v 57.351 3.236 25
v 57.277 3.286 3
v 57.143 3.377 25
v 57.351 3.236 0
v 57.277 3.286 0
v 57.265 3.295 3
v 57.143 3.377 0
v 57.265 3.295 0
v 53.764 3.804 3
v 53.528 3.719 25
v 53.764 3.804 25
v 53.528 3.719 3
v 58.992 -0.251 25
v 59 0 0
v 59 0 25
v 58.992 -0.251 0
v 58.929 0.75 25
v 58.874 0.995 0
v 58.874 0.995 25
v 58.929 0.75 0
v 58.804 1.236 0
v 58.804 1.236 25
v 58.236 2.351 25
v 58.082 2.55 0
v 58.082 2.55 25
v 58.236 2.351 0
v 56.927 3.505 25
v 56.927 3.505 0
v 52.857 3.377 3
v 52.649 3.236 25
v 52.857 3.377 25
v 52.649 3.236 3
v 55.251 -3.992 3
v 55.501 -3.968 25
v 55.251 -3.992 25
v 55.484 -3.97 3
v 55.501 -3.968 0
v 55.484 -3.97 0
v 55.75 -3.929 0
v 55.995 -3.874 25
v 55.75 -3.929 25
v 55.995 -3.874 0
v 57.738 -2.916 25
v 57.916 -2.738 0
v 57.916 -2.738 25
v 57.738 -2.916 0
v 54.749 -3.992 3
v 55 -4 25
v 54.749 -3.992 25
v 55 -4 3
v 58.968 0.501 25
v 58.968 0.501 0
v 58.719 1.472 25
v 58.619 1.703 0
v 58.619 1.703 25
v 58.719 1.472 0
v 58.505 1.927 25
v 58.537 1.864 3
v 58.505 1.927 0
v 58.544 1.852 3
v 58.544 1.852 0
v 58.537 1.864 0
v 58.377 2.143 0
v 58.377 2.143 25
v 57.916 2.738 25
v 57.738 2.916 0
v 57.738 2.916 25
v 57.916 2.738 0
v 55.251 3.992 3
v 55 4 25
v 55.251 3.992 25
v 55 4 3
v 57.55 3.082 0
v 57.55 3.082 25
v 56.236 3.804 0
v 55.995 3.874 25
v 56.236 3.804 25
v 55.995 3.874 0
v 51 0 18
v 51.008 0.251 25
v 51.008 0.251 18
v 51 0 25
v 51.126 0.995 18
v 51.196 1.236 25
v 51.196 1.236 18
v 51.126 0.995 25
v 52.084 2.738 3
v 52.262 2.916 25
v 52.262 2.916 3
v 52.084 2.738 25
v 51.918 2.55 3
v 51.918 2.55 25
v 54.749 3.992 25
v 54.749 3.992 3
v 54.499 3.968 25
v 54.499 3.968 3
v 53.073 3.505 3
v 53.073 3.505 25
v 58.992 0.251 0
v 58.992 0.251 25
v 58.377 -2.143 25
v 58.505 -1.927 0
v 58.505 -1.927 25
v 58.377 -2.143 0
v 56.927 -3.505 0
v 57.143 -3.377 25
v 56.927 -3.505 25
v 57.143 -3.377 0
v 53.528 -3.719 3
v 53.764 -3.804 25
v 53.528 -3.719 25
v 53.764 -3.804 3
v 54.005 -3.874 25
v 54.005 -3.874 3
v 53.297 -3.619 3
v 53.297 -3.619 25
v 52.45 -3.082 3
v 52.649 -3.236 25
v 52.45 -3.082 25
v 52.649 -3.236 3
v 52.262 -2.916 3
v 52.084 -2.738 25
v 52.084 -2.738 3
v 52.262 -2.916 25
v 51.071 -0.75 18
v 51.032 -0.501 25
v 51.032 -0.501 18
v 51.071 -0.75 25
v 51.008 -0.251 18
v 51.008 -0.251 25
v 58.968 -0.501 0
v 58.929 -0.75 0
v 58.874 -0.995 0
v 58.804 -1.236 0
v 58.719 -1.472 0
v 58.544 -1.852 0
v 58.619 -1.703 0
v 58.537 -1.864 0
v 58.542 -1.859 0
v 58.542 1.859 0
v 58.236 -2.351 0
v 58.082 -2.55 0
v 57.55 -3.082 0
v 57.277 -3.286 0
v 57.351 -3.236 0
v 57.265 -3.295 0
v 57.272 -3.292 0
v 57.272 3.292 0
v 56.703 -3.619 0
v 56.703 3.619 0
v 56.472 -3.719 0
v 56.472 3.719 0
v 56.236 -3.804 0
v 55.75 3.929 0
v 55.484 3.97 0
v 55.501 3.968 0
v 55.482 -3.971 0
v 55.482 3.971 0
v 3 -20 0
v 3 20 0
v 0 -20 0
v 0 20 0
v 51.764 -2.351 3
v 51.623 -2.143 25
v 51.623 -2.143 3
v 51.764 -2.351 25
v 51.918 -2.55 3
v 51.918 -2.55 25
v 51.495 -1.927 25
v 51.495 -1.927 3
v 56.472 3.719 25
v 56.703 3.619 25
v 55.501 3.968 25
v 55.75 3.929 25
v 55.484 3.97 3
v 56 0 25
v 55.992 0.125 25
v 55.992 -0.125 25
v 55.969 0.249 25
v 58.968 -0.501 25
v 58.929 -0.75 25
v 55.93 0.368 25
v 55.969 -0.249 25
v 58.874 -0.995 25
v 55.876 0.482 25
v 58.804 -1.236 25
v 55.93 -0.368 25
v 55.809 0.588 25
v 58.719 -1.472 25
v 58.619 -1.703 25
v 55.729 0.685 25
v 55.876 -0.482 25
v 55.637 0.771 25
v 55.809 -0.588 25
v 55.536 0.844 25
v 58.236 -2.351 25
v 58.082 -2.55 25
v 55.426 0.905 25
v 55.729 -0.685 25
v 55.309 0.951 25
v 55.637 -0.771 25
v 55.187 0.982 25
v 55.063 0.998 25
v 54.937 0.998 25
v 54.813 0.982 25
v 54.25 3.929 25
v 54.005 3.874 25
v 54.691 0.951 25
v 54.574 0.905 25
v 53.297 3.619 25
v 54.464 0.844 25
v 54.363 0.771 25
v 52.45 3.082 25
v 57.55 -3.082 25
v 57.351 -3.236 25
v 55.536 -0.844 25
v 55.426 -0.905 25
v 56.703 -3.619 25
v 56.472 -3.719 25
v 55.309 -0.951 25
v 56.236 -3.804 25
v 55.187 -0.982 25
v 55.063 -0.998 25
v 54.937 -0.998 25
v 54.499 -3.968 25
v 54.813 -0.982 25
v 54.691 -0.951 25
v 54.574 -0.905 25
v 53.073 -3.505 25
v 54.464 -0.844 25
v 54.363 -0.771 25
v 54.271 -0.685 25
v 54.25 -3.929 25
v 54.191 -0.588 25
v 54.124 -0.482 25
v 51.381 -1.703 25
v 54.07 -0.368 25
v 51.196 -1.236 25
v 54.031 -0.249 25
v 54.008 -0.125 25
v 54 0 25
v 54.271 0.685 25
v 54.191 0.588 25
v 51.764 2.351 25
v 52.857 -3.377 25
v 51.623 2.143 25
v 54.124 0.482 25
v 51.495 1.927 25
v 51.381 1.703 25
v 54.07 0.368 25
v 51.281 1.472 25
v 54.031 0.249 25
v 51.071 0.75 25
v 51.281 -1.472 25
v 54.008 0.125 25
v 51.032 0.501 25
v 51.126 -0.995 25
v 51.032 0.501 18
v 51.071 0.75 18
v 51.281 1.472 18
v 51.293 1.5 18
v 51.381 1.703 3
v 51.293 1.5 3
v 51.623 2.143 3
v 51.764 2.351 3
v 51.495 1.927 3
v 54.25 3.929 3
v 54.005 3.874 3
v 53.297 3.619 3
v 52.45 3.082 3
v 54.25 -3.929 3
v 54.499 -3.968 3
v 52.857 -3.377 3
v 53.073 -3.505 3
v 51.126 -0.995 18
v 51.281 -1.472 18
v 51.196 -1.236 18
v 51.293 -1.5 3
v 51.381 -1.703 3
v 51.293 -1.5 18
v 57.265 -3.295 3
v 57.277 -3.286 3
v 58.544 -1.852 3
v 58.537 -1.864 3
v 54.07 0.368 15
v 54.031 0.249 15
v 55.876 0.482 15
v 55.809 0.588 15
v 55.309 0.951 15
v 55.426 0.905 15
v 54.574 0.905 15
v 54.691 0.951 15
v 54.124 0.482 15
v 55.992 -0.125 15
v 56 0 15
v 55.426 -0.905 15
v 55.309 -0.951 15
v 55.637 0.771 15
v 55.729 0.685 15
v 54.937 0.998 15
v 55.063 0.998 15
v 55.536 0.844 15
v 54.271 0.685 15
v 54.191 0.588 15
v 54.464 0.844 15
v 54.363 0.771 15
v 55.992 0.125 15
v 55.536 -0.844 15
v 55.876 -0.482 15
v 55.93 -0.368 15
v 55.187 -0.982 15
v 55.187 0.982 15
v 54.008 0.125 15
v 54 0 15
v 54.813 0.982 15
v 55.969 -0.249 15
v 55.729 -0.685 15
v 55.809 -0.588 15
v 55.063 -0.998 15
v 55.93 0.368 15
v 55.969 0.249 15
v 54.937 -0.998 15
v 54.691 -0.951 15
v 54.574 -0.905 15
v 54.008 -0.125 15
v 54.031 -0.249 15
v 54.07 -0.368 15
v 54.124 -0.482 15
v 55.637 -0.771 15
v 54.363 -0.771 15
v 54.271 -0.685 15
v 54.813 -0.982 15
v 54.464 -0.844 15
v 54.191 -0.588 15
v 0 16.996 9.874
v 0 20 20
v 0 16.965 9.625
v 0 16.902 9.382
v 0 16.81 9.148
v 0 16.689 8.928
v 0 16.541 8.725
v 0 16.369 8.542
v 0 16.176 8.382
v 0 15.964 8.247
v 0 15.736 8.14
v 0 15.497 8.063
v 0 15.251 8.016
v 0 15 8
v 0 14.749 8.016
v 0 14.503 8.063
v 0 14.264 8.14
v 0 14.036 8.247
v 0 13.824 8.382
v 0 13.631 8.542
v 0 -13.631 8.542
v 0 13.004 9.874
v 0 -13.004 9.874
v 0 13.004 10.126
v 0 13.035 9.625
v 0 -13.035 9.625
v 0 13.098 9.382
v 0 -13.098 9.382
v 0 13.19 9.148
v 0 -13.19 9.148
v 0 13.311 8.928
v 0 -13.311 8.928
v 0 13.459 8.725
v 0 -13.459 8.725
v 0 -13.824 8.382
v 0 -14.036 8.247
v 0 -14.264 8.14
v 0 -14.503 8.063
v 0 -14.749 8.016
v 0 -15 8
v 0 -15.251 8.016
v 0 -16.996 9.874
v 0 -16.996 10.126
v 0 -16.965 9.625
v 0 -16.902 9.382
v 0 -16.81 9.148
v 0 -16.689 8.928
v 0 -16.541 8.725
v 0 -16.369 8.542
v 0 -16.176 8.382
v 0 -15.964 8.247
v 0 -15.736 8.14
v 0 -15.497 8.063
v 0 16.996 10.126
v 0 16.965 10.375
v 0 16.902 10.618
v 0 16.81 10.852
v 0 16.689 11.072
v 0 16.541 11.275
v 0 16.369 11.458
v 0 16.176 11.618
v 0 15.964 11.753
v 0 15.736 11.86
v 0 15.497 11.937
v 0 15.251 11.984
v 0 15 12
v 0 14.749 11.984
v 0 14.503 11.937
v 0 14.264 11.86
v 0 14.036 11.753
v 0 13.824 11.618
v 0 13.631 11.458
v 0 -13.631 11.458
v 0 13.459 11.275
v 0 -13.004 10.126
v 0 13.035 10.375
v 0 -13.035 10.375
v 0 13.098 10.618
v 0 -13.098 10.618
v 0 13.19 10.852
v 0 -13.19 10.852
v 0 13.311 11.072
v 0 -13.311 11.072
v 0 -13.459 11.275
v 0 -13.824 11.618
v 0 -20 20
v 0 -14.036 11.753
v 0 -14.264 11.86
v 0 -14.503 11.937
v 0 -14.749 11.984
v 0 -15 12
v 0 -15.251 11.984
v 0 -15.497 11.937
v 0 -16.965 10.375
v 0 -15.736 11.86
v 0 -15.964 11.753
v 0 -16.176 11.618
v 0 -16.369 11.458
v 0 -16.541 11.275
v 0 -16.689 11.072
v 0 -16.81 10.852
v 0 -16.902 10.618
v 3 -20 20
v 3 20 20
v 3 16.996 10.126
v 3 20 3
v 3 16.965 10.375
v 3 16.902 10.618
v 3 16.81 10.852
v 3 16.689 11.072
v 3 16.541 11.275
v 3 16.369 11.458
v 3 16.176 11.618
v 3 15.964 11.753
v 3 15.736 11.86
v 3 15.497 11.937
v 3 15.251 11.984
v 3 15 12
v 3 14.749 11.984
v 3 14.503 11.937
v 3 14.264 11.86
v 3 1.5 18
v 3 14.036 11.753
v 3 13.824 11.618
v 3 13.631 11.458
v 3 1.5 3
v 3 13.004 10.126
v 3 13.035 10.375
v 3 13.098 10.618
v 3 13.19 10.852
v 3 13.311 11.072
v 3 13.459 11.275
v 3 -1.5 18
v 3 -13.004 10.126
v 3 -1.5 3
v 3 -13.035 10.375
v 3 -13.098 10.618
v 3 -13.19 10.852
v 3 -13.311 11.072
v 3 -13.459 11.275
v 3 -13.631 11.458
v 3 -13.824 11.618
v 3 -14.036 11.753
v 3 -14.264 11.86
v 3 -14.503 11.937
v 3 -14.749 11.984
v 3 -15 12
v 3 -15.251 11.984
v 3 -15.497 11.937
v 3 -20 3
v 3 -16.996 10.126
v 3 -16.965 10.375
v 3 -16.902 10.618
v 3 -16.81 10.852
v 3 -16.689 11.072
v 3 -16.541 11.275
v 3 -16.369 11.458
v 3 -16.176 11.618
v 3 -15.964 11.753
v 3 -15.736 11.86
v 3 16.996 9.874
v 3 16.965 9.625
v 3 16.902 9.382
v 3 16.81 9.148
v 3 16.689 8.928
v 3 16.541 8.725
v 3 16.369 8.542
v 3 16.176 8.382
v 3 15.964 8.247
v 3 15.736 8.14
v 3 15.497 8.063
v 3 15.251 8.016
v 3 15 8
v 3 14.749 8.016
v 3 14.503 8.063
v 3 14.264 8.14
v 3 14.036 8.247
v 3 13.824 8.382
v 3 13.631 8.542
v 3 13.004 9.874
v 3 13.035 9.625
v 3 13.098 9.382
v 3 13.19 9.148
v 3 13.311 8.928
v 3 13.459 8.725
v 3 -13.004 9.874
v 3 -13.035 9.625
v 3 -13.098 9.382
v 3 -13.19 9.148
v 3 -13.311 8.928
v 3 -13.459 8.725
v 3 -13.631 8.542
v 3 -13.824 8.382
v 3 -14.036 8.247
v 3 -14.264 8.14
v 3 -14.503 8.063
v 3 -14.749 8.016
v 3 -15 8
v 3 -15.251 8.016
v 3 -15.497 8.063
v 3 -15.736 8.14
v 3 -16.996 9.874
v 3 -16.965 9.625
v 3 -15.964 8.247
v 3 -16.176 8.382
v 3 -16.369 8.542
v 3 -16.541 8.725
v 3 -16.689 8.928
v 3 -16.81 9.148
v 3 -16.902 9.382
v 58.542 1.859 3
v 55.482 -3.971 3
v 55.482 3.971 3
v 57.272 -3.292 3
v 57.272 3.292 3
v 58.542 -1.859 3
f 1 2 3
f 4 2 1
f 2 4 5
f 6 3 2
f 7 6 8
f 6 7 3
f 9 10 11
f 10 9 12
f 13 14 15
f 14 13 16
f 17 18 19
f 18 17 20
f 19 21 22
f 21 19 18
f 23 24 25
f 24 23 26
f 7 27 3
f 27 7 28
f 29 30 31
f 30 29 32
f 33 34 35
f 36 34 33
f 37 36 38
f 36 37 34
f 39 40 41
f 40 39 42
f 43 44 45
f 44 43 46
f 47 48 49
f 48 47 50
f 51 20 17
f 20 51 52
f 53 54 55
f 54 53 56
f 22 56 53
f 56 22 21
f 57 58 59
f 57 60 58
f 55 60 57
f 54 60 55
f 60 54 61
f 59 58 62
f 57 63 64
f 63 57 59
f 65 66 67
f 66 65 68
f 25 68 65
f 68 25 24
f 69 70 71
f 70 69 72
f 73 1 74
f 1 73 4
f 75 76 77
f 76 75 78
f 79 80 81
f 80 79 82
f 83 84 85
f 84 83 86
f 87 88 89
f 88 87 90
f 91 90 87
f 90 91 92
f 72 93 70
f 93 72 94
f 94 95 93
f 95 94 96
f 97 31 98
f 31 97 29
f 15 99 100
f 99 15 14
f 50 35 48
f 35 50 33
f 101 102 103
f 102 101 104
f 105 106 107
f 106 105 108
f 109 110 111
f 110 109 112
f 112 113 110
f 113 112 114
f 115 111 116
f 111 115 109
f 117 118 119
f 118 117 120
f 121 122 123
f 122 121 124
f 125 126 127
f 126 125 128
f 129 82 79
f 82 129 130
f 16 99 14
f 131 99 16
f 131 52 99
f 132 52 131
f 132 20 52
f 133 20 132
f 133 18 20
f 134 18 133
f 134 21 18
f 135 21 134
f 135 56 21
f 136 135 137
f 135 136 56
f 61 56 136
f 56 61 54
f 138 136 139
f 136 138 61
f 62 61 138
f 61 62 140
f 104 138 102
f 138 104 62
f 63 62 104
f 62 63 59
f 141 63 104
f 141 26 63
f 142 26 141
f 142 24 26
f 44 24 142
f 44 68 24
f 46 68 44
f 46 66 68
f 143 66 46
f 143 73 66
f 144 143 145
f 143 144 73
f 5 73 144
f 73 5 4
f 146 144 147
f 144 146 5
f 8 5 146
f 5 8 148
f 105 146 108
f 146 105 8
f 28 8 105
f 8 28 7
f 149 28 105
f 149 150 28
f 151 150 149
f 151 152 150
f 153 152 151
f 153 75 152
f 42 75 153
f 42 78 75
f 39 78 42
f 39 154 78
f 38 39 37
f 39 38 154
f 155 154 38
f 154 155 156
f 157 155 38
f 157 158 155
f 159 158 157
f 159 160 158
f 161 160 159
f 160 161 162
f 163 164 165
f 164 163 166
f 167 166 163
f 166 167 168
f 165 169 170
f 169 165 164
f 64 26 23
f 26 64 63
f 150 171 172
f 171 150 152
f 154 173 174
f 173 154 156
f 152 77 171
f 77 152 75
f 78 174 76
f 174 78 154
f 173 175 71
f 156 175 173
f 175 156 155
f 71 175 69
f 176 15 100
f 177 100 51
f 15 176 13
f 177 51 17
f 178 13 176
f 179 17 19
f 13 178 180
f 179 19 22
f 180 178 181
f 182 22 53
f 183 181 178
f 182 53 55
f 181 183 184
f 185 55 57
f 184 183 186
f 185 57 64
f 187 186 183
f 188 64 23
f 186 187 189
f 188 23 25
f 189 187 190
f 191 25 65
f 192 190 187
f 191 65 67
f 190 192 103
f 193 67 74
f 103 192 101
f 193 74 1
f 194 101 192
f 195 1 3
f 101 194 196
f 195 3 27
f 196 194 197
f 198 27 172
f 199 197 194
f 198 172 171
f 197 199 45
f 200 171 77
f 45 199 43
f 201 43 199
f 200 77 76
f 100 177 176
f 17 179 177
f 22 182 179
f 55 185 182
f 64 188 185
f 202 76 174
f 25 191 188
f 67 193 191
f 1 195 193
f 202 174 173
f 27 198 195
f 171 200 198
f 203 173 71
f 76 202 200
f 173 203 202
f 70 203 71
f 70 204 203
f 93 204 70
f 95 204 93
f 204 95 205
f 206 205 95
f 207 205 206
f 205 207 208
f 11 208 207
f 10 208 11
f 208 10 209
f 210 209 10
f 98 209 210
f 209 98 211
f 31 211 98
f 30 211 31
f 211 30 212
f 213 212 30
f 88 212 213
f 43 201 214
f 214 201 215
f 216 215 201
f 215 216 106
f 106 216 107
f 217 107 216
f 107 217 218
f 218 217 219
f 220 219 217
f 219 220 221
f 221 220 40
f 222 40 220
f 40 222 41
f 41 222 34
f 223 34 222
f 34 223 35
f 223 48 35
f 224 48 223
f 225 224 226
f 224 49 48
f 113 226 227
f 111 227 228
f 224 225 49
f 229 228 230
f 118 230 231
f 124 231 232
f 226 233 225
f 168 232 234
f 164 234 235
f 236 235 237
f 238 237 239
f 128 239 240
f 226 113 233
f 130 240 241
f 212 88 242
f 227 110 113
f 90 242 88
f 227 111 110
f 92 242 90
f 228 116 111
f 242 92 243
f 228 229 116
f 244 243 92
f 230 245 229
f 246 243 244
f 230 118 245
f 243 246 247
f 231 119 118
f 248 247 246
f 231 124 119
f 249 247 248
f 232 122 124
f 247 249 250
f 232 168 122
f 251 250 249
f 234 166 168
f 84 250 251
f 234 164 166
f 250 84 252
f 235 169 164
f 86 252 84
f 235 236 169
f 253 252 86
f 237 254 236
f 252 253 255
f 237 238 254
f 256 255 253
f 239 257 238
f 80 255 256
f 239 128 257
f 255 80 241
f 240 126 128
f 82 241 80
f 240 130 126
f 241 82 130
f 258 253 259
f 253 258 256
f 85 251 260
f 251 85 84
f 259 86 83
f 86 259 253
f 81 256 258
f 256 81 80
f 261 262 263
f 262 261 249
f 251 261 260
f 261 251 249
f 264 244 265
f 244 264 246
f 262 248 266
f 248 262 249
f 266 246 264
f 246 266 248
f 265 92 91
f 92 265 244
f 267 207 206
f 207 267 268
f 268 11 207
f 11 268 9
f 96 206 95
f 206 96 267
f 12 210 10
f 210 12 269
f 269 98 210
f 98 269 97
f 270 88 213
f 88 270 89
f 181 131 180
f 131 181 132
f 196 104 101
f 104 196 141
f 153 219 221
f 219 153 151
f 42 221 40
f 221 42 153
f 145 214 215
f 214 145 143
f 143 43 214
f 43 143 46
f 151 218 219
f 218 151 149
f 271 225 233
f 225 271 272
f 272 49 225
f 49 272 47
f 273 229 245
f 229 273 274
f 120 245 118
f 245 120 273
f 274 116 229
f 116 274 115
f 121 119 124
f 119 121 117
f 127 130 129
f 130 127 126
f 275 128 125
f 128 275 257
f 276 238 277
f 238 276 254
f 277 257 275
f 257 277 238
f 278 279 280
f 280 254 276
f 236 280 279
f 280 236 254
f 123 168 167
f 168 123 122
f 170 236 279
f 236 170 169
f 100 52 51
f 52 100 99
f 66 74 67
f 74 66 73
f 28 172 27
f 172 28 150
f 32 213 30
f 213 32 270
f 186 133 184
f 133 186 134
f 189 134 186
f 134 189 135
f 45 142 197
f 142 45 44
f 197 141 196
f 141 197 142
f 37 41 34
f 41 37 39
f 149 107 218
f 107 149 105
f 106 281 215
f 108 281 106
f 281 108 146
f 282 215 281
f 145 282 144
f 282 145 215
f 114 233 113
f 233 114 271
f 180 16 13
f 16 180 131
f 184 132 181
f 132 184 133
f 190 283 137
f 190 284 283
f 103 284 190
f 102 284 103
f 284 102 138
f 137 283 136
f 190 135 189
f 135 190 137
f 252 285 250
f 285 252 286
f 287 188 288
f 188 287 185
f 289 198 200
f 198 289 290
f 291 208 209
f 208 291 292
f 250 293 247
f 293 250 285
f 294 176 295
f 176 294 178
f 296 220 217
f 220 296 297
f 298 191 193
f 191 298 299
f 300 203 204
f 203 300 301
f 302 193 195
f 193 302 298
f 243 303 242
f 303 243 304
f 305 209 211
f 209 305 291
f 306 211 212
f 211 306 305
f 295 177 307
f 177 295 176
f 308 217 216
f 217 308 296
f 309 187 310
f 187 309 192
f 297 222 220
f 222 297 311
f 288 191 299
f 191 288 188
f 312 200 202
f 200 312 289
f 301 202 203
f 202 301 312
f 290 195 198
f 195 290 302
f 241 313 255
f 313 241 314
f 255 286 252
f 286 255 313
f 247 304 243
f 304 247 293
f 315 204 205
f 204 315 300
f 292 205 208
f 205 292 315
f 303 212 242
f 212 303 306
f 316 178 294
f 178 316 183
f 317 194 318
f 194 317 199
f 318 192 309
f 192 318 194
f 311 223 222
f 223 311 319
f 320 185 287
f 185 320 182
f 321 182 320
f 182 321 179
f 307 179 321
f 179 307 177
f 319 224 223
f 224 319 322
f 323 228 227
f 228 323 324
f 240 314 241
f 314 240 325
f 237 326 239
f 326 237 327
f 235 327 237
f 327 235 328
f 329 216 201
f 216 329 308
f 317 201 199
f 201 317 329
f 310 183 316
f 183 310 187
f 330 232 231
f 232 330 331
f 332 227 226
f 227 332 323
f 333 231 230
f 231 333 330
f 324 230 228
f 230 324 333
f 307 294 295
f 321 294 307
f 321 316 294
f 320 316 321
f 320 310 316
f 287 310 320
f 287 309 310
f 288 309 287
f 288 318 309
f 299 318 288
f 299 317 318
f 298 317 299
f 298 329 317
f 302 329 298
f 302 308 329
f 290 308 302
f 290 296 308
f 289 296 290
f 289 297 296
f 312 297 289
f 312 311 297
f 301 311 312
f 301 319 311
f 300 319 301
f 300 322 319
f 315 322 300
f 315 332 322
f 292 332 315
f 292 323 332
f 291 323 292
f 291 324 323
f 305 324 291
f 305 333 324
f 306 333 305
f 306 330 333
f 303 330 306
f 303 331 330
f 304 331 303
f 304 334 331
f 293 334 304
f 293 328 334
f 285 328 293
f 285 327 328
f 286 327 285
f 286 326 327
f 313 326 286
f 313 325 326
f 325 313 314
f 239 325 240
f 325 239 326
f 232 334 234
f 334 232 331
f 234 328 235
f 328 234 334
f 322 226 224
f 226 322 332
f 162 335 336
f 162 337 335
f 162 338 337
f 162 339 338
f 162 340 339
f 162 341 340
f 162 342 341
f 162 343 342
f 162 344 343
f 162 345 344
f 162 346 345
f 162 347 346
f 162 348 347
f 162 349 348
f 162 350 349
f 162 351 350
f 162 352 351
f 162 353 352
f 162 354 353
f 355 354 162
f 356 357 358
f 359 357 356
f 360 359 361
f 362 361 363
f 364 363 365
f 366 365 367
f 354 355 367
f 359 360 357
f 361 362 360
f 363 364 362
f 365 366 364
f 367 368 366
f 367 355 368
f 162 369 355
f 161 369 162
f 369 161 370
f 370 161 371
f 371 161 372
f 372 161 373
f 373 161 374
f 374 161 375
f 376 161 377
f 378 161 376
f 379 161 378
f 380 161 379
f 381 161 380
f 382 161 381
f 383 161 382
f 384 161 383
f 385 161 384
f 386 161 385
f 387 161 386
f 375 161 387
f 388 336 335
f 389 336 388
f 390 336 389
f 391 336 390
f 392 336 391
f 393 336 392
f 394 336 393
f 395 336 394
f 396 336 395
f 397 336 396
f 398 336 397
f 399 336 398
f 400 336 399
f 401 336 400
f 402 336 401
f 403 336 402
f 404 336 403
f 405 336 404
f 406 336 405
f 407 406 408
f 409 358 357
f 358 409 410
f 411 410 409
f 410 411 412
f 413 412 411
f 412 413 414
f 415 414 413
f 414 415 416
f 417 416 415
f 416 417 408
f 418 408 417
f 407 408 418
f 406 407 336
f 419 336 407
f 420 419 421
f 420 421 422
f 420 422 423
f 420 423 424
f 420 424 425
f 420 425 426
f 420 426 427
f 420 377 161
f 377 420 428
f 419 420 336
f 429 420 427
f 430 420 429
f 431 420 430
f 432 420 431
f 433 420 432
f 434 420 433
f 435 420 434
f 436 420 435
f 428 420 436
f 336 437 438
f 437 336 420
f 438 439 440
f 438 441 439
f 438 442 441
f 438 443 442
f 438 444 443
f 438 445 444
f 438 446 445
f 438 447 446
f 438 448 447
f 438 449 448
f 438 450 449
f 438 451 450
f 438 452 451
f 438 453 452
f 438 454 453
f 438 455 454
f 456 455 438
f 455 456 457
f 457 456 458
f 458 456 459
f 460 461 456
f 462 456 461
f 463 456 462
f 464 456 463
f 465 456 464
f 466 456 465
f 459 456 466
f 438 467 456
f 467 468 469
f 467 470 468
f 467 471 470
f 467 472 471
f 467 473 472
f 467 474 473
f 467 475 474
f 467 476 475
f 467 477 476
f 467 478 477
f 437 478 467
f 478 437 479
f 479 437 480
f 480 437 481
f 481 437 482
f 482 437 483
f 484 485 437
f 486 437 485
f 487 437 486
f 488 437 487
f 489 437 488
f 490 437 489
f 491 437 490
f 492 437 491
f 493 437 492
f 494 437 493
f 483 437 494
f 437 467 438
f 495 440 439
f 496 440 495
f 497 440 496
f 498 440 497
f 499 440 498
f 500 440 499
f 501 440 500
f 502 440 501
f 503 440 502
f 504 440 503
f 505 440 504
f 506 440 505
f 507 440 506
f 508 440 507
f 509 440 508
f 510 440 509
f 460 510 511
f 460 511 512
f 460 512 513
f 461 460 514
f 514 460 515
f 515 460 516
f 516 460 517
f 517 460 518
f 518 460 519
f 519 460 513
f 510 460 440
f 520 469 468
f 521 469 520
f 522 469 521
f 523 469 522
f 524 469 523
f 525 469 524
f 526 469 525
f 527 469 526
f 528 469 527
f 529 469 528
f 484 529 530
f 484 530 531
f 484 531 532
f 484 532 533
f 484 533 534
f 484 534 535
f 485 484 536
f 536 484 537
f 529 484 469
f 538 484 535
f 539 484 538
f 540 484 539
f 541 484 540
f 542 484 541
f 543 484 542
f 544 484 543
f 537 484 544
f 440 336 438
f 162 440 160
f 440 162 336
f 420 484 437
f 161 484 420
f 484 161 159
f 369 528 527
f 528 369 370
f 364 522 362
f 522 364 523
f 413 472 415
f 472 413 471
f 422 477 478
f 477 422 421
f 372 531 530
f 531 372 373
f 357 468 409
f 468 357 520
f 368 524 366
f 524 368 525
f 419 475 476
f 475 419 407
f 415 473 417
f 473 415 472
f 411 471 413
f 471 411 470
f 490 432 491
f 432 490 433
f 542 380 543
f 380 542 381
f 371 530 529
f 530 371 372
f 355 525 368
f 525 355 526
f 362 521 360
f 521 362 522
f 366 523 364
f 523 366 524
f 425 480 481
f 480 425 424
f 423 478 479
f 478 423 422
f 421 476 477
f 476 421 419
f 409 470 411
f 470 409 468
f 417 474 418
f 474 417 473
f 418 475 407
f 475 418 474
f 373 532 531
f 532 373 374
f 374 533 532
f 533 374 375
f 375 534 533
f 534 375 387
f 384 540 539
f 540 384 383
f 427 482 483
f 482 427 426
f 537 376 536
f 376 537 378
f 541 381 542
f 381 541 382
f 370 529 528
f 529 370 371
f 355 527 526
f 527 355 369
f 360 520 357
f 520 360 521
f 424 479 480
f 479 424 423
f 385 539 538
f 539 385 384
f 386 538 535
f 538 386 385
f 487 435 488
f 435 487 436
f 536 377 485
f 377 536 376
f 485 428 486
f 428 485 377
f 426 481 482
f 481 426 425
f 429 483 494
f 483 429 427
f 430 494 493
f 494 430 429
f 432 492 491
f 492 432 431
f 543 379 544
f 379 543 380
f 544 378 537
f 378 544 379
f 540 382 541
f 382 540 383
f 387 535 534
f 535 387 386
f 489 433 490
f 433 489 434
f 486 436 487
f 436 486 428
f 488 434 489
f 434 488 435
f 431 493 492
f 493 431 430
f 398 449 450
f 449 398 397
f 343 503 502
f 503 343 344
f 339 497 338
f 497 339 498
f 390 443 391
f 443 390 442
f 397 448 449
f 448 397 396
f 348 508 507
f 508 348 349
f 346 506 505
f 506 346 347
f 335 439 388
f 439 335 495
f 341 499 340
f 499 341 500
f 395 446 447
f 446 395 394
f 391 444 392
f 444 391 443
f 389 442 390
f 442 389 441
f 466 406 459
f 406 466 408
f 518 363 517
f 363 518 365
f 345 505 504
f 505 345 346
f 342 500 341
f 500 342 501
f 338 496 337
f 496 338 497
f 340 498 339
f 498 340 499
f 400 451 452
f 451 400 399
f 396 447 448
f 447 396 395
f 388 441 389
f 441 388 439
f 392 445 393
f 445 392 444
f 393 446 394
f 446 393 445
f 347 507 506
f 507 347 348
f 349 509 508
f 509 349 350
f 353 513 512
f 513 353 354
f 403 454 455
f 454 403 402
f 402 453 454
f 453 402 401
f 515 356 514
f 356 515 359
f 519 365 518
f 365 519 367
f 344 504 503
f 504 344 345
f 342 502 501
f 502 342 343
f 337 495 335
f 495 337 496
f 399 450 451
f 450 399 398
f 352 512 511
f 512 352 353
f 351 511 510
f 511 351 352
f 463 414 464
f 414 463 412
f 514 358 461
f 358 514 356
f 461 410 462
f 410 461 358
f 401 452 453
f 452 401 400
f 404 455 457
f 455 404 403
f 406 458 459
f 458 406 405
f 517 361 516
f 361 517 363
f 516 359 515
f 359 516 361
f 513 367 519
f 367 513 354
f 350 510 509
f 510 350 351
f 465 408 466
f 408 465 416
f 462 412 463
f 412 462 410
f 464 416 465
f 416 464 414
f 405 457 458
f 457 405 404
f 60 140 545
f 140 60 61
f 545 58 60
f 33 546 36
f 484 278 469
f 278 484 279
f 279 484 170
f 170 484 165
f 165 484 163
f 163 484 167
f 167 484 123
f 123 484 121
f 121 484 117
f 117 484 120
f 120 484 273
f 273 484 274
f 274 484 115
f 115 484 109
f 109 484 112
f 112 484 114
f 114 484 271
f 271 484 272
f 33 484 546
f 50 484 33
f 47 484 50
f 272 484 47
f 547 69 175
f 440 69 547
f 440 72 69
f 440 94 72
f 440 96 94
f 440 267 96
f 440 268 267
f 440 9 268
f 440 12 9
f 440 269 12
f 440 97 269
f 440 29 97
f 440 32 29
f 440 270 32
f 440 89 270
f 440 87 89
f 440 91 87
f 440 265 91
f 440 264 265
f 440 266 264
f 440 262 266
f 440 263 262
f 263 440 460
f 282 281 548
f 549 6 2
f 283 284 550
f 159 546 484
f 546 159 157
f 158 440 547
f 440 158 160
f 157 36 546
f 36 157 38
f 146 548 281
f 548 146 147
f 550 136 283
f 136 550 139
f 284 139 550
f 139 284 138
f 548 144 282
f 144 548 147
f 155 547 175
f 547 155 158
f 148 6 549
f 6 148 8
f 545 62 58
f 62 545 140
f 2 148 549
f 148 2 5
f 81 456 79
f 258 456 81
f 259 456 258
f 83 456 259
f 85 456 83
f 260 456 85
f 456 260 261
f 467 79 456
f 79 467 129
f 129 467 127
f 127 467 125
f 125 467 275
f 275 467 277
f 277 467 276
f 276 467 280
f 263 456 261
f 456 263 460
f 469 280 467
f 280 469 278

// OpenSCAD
// Kossel rear mounting bracket for Duet board
// https://github.com/zargony/kossel-hacks

// Width of extrusions (usually 15 or 20)
extrusion_width = 20;
// Distance of board (aka length of mounting bracket)
board_distance = 55;
// Height of board from upper edge of extrusion
// (0 = same height as upper edge of extrusion)
additional_height = 5;
// Width of mounting bracket
mount_width = 40;
// Thickness of bracket
thickness = 3;

hull() {
    translate([board_distance, 0, 0])
        cylinder(h=thickness, r=thickness+1);
    translate([0, -mount_width/2, 0])
        cube([thickness, mount_width, thickness]);
}

translate([board_distance, 0, 0]) {
    stand_height = extrusion_width + additional_height;
    hole_depth = 10;
    difference() {
        cylinder(h=stand_height, r=thickness+1, $fn=100);
        translate([0, 0, stand_height-hole_depth])
            cylinder(h=hole_depth+0.1, r=1, $fn=50);
    }
}

difference() {
    translate([0, -mount_width/2, 0])
        cube([thickness, mount_width, extrusion_width]);
    translate([-0.1, -mount_width/2+5, extrusion_width/2])
        rotate([0, 90, 0])
            cylinder(h=thickness+0.2, r=2, $fn=50);
    translate([-0.1, mount_width/2-5, extrusion_width/2])
        rotate([0, 90, 0])
            cylinder(h=thickness+0.2, r=2, $fn=50);
}

translate([thickness, -thickness/2, 0])
    cube([board_distance-2*thickness, thickness, extrusion_width-2]);
